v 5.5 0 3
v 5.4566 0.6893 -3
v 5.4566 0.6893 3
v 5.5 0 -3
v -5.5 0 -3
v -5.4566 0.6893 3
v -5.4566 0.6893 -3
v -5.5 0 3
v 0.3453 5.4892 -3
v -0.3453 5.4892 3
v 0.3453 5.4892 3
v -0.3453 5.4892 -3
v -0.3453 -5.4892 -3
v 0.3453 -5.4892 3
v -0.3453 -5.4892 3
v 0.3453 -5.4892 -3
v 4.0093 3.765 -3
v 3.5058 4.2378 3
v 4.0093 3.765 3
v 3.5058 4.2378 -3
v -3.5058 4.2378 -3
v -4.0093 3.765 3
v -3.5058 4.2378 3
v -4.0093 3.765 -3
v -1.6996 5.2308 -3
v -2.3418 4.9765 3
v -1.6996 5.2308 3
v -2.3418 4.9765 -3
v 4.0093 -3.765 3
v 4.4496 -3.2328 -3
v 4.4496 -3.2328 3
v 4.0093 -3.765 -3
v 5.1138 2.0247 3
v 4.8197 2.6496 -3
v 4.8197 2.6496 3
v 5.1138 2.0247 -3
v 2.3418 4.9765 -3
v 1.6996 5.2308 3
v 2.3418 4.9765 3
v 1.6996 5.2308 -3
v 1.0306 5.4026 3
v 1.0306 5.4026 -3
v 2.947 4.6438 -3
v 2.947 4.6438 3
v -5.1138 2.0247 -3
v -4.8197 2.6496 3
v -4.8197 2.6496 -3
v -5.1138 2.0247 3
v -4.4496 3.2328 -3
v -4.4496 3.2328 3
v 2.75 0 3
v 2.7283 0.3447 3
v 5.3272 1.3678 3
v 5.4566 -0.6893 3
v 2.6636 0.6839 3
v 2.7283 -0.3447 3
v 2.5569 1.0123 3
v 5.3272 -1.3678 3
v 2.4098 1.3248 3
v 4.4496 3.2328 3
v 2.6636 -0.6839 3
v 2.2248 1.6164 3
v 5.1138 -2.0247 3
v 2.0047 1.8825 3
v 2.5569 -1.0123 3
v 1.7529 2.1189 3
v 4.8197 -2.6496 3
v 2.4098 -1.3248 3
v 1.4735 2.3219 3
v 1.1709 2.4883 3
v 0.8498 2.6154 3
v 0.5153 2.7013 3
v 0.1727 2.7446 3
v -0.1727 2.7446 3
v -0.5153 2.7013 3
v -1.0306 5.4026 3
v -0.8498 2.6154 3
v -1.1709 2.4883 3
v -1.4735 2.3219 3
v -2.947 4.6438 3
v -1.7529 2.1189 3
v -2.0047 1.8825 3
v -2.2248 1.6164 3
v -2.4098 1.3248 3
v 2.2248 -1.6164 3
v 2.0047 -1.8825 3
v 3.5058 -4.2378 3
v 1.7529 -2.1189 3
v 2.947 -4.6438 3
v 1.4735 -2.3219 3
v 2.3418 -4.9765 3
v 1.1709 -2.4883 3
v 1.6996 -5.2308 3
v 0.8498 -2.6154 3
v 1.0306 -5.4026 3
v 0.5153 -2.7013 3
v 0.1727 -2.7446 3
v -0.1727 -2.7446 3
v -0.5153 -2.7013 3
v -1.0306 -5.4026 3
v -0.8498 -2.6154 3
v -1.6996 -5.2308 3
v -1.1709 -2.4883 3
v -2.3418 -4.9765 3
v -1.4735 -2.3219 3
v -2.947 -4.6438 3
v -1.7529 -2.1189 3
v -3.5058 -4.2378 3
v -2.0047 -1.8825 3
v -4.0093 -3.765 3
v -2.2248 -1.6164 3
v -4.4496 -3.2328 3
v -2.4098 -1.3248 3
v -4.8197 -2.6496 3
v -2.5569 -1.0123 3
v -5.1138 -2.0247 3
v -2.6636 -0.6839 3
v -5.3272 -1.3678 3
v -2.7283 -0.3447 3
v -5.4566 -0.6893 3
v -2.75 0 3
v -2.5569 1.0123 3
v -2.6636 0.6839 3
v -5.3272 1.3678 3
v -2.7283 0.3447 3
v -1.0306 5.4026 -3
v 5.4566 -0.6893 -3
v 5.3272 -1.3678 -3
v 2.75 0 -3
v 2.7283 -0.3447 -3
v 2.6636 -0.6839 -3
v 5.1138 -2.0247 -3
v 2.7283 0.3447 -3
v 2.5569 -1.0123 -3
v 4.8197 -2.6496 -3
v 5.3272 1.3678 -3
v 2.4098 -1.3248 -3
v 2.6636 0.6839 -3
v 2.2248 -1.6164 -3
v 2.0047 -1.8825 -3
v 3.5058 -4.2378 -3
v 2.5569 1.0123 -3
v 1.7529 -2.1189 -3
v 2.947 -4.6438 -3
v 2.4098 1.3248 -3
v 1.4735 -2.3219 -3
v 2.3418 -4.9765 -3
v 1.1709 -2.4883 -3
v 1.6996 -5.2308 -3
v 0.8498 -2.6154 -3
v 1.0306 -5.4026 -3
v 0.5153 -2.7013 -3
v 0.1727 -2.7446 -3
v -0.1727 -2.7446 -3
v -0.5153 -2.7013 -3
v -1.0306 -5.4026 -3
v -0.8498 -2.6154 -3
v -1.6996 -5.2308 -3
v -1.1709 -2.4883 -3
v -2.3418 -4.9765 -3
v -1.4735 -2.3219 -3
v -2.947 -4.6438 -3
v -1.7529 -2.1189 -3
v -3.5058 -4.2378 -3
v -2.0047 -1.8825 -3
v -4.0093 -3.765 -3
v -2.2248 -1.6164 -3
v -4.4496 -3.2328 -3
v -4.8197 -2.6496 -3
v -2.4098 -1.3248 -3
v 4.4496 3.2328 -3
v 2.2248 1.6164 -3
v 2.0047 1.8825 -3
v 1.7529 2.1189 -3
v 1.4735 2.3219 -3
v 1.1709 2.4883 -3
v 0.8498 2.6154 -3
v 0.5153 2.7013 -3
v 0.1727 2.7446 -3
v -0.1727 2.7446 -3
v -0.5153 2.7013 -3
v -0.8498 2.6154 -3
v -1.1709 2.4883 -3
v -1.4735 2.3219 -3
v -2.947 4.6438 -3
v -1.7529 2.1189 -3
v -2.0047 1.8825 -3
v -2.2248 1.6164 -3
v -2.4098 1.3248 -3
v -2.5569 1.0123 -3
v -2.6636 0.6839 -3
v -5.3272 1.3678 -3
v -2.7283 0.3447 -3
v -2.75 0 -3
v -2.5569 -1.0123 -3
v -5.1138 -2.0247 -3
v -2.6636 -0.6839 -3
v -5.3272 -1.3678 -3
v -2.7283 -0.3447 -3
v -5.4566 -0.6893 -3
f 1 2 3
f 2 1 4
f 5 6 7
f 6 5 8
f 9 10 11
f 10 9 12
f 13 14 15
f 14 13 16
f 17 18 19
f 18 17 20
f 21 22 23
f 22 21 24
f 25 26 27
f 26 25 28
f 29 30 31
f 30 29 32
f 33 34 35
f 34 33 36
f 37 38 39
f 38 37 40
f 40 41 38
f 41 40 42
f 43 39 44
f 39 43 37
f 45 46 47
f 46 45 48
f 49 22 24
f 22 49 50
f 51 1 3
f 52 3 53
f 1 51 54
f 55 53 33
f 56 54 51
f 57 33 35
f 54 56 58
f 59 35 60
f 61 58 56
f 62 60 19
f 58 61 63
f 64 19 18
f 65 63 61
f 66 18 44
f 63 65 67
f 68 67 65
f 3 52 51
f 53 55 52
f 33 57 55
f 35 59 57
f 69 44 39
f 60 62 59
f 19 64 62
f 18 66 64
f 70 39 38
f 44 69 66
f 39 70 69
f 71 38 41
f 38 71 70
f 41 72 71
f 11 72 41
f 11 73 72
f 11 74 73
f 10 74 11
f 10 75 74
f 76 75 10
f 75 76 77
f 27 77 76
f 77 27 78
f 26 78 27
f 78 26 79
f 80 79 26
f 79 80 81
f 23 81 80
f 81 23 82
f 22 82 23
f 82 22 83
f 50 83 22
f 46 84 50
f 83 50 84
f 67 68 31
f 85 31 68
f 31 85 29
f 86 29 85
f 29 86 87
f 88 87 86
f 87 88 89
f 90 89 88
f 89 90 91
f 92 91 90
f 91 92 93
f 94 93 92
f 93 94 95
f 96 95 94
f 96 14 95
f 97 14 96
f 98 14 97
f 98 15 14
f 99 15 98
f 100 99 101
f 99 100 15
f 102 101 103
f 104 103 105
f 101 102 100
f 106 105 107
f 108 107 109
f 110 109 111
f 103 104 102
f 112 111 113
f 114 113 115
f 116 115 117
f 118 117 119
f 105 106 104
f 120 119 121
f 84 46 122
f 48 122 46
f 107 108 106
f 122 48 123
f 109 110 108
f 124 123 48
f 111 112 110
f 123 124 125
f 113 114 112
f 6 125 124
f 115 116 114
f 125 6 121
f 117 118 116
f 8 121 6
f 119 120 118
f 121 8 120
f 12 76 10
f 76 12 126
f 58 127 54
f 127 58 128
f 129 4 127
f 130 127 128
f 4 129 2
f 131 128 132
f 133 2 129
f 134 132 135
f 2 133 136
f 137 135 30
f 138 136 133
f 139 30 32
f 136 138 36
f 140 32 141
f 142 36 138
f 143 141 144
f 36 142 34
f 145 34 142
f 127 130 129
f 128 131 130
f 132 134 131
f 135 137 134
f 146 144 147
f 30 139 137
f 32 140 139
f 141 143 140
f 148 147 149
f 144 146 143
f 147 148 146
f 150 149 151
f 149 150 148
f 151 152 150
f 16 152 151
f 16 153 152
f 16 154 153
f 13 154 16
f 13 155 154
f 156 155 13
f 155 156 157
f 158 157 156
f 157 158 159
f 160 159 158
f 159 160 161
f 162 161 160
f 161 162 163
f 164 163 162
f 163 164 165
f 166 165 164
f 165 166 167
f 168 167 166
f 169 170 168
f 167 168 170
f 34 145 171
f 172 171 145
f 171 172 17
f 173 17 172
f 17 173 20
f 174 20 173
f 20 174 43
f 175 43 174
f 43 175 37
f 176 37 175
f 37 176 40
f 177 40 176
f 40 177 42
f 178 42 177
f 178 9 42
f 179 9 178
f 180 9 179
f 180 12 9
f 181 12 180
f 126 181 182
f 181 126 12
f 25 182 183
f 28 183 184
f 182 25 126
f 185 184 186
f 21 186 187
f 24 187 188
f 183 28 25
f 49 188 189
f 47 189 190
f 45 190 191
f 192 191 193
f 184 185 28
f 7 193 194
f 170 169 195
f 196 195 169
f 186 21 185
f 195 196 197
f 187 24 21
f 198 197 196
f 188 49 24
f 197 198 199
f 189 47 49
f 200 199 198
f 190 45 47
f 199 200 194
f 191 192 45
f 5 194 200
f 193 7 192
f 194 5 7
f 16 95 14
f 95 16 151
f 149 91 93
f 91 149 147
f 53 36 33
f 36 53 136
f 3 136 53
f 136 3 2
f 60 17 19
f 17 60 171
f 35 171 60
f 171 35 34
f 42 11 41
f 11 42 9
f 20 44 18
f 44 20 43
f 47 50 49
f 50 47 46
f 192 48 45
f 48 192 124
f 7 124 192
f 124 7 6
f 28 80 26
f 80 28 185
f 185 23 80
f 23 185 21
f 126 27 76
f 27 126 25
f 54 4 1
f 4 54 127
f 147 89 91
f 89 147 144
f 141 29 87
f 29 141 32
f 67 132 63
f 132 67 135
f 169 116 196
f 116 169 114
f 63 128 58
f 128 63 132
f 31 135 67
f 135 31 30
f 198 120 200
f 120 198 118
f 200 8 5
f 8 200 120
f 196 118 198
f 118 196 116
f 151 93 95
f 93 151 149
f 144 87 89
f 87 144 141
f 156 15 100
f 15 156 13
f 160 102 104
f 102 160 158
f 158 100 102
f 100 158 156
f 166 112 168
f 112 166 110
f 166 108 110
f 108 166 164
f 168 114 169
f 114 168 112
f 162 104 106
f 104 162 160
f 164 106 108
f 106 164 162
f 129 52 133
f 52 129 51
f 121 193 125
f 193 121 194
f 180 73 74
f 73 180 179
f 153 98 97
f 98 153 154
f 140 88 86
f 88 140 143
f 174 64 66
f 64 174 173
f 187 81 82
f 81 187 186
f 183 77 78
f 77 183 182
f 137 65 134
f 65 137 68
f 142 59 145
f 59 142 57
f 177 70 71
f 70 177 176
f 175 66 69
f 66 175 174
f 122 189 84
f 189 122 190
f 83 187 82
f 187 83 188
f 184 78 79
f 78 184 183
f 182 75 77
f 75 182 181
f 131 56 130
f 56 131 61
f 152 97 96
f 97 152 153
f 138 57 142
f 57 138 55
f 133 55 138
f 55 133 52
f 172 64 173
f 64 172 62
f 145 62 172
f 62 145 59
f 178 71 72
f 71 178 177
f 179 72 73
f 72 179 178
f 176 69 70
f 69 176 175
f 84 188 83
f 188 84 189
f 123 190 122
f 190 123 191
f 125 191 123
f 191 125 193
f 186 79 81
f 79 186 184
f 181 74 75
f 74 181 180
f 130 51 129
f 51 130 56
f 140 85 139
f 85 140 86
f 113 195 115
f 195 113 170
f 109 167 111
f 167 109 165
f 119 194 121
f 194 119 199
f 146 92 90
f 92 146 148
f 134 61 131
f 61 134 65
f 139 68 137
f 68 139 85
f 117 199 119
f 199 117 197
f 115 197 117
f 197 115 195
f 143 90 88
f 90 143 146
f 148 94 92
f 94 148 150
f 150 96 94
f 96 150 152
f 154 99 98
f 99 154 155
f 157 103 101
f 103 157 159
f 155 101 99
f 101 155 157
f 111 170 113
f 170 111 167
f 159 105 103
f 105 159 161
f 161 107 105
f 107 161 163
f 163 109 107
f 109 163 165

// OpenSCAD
$fn = 50;


difference() {
	union() {
		translate(v = [0, 0, -3.0000000000]) {
			cylinder(h = 6, r = 5.5000000000);
		}
	}
	union() {
		translate(v = [0, 0, -100.0000000000]) {
			cylinder(h = 200, r = 2.7500000000);
		}
	}
}
